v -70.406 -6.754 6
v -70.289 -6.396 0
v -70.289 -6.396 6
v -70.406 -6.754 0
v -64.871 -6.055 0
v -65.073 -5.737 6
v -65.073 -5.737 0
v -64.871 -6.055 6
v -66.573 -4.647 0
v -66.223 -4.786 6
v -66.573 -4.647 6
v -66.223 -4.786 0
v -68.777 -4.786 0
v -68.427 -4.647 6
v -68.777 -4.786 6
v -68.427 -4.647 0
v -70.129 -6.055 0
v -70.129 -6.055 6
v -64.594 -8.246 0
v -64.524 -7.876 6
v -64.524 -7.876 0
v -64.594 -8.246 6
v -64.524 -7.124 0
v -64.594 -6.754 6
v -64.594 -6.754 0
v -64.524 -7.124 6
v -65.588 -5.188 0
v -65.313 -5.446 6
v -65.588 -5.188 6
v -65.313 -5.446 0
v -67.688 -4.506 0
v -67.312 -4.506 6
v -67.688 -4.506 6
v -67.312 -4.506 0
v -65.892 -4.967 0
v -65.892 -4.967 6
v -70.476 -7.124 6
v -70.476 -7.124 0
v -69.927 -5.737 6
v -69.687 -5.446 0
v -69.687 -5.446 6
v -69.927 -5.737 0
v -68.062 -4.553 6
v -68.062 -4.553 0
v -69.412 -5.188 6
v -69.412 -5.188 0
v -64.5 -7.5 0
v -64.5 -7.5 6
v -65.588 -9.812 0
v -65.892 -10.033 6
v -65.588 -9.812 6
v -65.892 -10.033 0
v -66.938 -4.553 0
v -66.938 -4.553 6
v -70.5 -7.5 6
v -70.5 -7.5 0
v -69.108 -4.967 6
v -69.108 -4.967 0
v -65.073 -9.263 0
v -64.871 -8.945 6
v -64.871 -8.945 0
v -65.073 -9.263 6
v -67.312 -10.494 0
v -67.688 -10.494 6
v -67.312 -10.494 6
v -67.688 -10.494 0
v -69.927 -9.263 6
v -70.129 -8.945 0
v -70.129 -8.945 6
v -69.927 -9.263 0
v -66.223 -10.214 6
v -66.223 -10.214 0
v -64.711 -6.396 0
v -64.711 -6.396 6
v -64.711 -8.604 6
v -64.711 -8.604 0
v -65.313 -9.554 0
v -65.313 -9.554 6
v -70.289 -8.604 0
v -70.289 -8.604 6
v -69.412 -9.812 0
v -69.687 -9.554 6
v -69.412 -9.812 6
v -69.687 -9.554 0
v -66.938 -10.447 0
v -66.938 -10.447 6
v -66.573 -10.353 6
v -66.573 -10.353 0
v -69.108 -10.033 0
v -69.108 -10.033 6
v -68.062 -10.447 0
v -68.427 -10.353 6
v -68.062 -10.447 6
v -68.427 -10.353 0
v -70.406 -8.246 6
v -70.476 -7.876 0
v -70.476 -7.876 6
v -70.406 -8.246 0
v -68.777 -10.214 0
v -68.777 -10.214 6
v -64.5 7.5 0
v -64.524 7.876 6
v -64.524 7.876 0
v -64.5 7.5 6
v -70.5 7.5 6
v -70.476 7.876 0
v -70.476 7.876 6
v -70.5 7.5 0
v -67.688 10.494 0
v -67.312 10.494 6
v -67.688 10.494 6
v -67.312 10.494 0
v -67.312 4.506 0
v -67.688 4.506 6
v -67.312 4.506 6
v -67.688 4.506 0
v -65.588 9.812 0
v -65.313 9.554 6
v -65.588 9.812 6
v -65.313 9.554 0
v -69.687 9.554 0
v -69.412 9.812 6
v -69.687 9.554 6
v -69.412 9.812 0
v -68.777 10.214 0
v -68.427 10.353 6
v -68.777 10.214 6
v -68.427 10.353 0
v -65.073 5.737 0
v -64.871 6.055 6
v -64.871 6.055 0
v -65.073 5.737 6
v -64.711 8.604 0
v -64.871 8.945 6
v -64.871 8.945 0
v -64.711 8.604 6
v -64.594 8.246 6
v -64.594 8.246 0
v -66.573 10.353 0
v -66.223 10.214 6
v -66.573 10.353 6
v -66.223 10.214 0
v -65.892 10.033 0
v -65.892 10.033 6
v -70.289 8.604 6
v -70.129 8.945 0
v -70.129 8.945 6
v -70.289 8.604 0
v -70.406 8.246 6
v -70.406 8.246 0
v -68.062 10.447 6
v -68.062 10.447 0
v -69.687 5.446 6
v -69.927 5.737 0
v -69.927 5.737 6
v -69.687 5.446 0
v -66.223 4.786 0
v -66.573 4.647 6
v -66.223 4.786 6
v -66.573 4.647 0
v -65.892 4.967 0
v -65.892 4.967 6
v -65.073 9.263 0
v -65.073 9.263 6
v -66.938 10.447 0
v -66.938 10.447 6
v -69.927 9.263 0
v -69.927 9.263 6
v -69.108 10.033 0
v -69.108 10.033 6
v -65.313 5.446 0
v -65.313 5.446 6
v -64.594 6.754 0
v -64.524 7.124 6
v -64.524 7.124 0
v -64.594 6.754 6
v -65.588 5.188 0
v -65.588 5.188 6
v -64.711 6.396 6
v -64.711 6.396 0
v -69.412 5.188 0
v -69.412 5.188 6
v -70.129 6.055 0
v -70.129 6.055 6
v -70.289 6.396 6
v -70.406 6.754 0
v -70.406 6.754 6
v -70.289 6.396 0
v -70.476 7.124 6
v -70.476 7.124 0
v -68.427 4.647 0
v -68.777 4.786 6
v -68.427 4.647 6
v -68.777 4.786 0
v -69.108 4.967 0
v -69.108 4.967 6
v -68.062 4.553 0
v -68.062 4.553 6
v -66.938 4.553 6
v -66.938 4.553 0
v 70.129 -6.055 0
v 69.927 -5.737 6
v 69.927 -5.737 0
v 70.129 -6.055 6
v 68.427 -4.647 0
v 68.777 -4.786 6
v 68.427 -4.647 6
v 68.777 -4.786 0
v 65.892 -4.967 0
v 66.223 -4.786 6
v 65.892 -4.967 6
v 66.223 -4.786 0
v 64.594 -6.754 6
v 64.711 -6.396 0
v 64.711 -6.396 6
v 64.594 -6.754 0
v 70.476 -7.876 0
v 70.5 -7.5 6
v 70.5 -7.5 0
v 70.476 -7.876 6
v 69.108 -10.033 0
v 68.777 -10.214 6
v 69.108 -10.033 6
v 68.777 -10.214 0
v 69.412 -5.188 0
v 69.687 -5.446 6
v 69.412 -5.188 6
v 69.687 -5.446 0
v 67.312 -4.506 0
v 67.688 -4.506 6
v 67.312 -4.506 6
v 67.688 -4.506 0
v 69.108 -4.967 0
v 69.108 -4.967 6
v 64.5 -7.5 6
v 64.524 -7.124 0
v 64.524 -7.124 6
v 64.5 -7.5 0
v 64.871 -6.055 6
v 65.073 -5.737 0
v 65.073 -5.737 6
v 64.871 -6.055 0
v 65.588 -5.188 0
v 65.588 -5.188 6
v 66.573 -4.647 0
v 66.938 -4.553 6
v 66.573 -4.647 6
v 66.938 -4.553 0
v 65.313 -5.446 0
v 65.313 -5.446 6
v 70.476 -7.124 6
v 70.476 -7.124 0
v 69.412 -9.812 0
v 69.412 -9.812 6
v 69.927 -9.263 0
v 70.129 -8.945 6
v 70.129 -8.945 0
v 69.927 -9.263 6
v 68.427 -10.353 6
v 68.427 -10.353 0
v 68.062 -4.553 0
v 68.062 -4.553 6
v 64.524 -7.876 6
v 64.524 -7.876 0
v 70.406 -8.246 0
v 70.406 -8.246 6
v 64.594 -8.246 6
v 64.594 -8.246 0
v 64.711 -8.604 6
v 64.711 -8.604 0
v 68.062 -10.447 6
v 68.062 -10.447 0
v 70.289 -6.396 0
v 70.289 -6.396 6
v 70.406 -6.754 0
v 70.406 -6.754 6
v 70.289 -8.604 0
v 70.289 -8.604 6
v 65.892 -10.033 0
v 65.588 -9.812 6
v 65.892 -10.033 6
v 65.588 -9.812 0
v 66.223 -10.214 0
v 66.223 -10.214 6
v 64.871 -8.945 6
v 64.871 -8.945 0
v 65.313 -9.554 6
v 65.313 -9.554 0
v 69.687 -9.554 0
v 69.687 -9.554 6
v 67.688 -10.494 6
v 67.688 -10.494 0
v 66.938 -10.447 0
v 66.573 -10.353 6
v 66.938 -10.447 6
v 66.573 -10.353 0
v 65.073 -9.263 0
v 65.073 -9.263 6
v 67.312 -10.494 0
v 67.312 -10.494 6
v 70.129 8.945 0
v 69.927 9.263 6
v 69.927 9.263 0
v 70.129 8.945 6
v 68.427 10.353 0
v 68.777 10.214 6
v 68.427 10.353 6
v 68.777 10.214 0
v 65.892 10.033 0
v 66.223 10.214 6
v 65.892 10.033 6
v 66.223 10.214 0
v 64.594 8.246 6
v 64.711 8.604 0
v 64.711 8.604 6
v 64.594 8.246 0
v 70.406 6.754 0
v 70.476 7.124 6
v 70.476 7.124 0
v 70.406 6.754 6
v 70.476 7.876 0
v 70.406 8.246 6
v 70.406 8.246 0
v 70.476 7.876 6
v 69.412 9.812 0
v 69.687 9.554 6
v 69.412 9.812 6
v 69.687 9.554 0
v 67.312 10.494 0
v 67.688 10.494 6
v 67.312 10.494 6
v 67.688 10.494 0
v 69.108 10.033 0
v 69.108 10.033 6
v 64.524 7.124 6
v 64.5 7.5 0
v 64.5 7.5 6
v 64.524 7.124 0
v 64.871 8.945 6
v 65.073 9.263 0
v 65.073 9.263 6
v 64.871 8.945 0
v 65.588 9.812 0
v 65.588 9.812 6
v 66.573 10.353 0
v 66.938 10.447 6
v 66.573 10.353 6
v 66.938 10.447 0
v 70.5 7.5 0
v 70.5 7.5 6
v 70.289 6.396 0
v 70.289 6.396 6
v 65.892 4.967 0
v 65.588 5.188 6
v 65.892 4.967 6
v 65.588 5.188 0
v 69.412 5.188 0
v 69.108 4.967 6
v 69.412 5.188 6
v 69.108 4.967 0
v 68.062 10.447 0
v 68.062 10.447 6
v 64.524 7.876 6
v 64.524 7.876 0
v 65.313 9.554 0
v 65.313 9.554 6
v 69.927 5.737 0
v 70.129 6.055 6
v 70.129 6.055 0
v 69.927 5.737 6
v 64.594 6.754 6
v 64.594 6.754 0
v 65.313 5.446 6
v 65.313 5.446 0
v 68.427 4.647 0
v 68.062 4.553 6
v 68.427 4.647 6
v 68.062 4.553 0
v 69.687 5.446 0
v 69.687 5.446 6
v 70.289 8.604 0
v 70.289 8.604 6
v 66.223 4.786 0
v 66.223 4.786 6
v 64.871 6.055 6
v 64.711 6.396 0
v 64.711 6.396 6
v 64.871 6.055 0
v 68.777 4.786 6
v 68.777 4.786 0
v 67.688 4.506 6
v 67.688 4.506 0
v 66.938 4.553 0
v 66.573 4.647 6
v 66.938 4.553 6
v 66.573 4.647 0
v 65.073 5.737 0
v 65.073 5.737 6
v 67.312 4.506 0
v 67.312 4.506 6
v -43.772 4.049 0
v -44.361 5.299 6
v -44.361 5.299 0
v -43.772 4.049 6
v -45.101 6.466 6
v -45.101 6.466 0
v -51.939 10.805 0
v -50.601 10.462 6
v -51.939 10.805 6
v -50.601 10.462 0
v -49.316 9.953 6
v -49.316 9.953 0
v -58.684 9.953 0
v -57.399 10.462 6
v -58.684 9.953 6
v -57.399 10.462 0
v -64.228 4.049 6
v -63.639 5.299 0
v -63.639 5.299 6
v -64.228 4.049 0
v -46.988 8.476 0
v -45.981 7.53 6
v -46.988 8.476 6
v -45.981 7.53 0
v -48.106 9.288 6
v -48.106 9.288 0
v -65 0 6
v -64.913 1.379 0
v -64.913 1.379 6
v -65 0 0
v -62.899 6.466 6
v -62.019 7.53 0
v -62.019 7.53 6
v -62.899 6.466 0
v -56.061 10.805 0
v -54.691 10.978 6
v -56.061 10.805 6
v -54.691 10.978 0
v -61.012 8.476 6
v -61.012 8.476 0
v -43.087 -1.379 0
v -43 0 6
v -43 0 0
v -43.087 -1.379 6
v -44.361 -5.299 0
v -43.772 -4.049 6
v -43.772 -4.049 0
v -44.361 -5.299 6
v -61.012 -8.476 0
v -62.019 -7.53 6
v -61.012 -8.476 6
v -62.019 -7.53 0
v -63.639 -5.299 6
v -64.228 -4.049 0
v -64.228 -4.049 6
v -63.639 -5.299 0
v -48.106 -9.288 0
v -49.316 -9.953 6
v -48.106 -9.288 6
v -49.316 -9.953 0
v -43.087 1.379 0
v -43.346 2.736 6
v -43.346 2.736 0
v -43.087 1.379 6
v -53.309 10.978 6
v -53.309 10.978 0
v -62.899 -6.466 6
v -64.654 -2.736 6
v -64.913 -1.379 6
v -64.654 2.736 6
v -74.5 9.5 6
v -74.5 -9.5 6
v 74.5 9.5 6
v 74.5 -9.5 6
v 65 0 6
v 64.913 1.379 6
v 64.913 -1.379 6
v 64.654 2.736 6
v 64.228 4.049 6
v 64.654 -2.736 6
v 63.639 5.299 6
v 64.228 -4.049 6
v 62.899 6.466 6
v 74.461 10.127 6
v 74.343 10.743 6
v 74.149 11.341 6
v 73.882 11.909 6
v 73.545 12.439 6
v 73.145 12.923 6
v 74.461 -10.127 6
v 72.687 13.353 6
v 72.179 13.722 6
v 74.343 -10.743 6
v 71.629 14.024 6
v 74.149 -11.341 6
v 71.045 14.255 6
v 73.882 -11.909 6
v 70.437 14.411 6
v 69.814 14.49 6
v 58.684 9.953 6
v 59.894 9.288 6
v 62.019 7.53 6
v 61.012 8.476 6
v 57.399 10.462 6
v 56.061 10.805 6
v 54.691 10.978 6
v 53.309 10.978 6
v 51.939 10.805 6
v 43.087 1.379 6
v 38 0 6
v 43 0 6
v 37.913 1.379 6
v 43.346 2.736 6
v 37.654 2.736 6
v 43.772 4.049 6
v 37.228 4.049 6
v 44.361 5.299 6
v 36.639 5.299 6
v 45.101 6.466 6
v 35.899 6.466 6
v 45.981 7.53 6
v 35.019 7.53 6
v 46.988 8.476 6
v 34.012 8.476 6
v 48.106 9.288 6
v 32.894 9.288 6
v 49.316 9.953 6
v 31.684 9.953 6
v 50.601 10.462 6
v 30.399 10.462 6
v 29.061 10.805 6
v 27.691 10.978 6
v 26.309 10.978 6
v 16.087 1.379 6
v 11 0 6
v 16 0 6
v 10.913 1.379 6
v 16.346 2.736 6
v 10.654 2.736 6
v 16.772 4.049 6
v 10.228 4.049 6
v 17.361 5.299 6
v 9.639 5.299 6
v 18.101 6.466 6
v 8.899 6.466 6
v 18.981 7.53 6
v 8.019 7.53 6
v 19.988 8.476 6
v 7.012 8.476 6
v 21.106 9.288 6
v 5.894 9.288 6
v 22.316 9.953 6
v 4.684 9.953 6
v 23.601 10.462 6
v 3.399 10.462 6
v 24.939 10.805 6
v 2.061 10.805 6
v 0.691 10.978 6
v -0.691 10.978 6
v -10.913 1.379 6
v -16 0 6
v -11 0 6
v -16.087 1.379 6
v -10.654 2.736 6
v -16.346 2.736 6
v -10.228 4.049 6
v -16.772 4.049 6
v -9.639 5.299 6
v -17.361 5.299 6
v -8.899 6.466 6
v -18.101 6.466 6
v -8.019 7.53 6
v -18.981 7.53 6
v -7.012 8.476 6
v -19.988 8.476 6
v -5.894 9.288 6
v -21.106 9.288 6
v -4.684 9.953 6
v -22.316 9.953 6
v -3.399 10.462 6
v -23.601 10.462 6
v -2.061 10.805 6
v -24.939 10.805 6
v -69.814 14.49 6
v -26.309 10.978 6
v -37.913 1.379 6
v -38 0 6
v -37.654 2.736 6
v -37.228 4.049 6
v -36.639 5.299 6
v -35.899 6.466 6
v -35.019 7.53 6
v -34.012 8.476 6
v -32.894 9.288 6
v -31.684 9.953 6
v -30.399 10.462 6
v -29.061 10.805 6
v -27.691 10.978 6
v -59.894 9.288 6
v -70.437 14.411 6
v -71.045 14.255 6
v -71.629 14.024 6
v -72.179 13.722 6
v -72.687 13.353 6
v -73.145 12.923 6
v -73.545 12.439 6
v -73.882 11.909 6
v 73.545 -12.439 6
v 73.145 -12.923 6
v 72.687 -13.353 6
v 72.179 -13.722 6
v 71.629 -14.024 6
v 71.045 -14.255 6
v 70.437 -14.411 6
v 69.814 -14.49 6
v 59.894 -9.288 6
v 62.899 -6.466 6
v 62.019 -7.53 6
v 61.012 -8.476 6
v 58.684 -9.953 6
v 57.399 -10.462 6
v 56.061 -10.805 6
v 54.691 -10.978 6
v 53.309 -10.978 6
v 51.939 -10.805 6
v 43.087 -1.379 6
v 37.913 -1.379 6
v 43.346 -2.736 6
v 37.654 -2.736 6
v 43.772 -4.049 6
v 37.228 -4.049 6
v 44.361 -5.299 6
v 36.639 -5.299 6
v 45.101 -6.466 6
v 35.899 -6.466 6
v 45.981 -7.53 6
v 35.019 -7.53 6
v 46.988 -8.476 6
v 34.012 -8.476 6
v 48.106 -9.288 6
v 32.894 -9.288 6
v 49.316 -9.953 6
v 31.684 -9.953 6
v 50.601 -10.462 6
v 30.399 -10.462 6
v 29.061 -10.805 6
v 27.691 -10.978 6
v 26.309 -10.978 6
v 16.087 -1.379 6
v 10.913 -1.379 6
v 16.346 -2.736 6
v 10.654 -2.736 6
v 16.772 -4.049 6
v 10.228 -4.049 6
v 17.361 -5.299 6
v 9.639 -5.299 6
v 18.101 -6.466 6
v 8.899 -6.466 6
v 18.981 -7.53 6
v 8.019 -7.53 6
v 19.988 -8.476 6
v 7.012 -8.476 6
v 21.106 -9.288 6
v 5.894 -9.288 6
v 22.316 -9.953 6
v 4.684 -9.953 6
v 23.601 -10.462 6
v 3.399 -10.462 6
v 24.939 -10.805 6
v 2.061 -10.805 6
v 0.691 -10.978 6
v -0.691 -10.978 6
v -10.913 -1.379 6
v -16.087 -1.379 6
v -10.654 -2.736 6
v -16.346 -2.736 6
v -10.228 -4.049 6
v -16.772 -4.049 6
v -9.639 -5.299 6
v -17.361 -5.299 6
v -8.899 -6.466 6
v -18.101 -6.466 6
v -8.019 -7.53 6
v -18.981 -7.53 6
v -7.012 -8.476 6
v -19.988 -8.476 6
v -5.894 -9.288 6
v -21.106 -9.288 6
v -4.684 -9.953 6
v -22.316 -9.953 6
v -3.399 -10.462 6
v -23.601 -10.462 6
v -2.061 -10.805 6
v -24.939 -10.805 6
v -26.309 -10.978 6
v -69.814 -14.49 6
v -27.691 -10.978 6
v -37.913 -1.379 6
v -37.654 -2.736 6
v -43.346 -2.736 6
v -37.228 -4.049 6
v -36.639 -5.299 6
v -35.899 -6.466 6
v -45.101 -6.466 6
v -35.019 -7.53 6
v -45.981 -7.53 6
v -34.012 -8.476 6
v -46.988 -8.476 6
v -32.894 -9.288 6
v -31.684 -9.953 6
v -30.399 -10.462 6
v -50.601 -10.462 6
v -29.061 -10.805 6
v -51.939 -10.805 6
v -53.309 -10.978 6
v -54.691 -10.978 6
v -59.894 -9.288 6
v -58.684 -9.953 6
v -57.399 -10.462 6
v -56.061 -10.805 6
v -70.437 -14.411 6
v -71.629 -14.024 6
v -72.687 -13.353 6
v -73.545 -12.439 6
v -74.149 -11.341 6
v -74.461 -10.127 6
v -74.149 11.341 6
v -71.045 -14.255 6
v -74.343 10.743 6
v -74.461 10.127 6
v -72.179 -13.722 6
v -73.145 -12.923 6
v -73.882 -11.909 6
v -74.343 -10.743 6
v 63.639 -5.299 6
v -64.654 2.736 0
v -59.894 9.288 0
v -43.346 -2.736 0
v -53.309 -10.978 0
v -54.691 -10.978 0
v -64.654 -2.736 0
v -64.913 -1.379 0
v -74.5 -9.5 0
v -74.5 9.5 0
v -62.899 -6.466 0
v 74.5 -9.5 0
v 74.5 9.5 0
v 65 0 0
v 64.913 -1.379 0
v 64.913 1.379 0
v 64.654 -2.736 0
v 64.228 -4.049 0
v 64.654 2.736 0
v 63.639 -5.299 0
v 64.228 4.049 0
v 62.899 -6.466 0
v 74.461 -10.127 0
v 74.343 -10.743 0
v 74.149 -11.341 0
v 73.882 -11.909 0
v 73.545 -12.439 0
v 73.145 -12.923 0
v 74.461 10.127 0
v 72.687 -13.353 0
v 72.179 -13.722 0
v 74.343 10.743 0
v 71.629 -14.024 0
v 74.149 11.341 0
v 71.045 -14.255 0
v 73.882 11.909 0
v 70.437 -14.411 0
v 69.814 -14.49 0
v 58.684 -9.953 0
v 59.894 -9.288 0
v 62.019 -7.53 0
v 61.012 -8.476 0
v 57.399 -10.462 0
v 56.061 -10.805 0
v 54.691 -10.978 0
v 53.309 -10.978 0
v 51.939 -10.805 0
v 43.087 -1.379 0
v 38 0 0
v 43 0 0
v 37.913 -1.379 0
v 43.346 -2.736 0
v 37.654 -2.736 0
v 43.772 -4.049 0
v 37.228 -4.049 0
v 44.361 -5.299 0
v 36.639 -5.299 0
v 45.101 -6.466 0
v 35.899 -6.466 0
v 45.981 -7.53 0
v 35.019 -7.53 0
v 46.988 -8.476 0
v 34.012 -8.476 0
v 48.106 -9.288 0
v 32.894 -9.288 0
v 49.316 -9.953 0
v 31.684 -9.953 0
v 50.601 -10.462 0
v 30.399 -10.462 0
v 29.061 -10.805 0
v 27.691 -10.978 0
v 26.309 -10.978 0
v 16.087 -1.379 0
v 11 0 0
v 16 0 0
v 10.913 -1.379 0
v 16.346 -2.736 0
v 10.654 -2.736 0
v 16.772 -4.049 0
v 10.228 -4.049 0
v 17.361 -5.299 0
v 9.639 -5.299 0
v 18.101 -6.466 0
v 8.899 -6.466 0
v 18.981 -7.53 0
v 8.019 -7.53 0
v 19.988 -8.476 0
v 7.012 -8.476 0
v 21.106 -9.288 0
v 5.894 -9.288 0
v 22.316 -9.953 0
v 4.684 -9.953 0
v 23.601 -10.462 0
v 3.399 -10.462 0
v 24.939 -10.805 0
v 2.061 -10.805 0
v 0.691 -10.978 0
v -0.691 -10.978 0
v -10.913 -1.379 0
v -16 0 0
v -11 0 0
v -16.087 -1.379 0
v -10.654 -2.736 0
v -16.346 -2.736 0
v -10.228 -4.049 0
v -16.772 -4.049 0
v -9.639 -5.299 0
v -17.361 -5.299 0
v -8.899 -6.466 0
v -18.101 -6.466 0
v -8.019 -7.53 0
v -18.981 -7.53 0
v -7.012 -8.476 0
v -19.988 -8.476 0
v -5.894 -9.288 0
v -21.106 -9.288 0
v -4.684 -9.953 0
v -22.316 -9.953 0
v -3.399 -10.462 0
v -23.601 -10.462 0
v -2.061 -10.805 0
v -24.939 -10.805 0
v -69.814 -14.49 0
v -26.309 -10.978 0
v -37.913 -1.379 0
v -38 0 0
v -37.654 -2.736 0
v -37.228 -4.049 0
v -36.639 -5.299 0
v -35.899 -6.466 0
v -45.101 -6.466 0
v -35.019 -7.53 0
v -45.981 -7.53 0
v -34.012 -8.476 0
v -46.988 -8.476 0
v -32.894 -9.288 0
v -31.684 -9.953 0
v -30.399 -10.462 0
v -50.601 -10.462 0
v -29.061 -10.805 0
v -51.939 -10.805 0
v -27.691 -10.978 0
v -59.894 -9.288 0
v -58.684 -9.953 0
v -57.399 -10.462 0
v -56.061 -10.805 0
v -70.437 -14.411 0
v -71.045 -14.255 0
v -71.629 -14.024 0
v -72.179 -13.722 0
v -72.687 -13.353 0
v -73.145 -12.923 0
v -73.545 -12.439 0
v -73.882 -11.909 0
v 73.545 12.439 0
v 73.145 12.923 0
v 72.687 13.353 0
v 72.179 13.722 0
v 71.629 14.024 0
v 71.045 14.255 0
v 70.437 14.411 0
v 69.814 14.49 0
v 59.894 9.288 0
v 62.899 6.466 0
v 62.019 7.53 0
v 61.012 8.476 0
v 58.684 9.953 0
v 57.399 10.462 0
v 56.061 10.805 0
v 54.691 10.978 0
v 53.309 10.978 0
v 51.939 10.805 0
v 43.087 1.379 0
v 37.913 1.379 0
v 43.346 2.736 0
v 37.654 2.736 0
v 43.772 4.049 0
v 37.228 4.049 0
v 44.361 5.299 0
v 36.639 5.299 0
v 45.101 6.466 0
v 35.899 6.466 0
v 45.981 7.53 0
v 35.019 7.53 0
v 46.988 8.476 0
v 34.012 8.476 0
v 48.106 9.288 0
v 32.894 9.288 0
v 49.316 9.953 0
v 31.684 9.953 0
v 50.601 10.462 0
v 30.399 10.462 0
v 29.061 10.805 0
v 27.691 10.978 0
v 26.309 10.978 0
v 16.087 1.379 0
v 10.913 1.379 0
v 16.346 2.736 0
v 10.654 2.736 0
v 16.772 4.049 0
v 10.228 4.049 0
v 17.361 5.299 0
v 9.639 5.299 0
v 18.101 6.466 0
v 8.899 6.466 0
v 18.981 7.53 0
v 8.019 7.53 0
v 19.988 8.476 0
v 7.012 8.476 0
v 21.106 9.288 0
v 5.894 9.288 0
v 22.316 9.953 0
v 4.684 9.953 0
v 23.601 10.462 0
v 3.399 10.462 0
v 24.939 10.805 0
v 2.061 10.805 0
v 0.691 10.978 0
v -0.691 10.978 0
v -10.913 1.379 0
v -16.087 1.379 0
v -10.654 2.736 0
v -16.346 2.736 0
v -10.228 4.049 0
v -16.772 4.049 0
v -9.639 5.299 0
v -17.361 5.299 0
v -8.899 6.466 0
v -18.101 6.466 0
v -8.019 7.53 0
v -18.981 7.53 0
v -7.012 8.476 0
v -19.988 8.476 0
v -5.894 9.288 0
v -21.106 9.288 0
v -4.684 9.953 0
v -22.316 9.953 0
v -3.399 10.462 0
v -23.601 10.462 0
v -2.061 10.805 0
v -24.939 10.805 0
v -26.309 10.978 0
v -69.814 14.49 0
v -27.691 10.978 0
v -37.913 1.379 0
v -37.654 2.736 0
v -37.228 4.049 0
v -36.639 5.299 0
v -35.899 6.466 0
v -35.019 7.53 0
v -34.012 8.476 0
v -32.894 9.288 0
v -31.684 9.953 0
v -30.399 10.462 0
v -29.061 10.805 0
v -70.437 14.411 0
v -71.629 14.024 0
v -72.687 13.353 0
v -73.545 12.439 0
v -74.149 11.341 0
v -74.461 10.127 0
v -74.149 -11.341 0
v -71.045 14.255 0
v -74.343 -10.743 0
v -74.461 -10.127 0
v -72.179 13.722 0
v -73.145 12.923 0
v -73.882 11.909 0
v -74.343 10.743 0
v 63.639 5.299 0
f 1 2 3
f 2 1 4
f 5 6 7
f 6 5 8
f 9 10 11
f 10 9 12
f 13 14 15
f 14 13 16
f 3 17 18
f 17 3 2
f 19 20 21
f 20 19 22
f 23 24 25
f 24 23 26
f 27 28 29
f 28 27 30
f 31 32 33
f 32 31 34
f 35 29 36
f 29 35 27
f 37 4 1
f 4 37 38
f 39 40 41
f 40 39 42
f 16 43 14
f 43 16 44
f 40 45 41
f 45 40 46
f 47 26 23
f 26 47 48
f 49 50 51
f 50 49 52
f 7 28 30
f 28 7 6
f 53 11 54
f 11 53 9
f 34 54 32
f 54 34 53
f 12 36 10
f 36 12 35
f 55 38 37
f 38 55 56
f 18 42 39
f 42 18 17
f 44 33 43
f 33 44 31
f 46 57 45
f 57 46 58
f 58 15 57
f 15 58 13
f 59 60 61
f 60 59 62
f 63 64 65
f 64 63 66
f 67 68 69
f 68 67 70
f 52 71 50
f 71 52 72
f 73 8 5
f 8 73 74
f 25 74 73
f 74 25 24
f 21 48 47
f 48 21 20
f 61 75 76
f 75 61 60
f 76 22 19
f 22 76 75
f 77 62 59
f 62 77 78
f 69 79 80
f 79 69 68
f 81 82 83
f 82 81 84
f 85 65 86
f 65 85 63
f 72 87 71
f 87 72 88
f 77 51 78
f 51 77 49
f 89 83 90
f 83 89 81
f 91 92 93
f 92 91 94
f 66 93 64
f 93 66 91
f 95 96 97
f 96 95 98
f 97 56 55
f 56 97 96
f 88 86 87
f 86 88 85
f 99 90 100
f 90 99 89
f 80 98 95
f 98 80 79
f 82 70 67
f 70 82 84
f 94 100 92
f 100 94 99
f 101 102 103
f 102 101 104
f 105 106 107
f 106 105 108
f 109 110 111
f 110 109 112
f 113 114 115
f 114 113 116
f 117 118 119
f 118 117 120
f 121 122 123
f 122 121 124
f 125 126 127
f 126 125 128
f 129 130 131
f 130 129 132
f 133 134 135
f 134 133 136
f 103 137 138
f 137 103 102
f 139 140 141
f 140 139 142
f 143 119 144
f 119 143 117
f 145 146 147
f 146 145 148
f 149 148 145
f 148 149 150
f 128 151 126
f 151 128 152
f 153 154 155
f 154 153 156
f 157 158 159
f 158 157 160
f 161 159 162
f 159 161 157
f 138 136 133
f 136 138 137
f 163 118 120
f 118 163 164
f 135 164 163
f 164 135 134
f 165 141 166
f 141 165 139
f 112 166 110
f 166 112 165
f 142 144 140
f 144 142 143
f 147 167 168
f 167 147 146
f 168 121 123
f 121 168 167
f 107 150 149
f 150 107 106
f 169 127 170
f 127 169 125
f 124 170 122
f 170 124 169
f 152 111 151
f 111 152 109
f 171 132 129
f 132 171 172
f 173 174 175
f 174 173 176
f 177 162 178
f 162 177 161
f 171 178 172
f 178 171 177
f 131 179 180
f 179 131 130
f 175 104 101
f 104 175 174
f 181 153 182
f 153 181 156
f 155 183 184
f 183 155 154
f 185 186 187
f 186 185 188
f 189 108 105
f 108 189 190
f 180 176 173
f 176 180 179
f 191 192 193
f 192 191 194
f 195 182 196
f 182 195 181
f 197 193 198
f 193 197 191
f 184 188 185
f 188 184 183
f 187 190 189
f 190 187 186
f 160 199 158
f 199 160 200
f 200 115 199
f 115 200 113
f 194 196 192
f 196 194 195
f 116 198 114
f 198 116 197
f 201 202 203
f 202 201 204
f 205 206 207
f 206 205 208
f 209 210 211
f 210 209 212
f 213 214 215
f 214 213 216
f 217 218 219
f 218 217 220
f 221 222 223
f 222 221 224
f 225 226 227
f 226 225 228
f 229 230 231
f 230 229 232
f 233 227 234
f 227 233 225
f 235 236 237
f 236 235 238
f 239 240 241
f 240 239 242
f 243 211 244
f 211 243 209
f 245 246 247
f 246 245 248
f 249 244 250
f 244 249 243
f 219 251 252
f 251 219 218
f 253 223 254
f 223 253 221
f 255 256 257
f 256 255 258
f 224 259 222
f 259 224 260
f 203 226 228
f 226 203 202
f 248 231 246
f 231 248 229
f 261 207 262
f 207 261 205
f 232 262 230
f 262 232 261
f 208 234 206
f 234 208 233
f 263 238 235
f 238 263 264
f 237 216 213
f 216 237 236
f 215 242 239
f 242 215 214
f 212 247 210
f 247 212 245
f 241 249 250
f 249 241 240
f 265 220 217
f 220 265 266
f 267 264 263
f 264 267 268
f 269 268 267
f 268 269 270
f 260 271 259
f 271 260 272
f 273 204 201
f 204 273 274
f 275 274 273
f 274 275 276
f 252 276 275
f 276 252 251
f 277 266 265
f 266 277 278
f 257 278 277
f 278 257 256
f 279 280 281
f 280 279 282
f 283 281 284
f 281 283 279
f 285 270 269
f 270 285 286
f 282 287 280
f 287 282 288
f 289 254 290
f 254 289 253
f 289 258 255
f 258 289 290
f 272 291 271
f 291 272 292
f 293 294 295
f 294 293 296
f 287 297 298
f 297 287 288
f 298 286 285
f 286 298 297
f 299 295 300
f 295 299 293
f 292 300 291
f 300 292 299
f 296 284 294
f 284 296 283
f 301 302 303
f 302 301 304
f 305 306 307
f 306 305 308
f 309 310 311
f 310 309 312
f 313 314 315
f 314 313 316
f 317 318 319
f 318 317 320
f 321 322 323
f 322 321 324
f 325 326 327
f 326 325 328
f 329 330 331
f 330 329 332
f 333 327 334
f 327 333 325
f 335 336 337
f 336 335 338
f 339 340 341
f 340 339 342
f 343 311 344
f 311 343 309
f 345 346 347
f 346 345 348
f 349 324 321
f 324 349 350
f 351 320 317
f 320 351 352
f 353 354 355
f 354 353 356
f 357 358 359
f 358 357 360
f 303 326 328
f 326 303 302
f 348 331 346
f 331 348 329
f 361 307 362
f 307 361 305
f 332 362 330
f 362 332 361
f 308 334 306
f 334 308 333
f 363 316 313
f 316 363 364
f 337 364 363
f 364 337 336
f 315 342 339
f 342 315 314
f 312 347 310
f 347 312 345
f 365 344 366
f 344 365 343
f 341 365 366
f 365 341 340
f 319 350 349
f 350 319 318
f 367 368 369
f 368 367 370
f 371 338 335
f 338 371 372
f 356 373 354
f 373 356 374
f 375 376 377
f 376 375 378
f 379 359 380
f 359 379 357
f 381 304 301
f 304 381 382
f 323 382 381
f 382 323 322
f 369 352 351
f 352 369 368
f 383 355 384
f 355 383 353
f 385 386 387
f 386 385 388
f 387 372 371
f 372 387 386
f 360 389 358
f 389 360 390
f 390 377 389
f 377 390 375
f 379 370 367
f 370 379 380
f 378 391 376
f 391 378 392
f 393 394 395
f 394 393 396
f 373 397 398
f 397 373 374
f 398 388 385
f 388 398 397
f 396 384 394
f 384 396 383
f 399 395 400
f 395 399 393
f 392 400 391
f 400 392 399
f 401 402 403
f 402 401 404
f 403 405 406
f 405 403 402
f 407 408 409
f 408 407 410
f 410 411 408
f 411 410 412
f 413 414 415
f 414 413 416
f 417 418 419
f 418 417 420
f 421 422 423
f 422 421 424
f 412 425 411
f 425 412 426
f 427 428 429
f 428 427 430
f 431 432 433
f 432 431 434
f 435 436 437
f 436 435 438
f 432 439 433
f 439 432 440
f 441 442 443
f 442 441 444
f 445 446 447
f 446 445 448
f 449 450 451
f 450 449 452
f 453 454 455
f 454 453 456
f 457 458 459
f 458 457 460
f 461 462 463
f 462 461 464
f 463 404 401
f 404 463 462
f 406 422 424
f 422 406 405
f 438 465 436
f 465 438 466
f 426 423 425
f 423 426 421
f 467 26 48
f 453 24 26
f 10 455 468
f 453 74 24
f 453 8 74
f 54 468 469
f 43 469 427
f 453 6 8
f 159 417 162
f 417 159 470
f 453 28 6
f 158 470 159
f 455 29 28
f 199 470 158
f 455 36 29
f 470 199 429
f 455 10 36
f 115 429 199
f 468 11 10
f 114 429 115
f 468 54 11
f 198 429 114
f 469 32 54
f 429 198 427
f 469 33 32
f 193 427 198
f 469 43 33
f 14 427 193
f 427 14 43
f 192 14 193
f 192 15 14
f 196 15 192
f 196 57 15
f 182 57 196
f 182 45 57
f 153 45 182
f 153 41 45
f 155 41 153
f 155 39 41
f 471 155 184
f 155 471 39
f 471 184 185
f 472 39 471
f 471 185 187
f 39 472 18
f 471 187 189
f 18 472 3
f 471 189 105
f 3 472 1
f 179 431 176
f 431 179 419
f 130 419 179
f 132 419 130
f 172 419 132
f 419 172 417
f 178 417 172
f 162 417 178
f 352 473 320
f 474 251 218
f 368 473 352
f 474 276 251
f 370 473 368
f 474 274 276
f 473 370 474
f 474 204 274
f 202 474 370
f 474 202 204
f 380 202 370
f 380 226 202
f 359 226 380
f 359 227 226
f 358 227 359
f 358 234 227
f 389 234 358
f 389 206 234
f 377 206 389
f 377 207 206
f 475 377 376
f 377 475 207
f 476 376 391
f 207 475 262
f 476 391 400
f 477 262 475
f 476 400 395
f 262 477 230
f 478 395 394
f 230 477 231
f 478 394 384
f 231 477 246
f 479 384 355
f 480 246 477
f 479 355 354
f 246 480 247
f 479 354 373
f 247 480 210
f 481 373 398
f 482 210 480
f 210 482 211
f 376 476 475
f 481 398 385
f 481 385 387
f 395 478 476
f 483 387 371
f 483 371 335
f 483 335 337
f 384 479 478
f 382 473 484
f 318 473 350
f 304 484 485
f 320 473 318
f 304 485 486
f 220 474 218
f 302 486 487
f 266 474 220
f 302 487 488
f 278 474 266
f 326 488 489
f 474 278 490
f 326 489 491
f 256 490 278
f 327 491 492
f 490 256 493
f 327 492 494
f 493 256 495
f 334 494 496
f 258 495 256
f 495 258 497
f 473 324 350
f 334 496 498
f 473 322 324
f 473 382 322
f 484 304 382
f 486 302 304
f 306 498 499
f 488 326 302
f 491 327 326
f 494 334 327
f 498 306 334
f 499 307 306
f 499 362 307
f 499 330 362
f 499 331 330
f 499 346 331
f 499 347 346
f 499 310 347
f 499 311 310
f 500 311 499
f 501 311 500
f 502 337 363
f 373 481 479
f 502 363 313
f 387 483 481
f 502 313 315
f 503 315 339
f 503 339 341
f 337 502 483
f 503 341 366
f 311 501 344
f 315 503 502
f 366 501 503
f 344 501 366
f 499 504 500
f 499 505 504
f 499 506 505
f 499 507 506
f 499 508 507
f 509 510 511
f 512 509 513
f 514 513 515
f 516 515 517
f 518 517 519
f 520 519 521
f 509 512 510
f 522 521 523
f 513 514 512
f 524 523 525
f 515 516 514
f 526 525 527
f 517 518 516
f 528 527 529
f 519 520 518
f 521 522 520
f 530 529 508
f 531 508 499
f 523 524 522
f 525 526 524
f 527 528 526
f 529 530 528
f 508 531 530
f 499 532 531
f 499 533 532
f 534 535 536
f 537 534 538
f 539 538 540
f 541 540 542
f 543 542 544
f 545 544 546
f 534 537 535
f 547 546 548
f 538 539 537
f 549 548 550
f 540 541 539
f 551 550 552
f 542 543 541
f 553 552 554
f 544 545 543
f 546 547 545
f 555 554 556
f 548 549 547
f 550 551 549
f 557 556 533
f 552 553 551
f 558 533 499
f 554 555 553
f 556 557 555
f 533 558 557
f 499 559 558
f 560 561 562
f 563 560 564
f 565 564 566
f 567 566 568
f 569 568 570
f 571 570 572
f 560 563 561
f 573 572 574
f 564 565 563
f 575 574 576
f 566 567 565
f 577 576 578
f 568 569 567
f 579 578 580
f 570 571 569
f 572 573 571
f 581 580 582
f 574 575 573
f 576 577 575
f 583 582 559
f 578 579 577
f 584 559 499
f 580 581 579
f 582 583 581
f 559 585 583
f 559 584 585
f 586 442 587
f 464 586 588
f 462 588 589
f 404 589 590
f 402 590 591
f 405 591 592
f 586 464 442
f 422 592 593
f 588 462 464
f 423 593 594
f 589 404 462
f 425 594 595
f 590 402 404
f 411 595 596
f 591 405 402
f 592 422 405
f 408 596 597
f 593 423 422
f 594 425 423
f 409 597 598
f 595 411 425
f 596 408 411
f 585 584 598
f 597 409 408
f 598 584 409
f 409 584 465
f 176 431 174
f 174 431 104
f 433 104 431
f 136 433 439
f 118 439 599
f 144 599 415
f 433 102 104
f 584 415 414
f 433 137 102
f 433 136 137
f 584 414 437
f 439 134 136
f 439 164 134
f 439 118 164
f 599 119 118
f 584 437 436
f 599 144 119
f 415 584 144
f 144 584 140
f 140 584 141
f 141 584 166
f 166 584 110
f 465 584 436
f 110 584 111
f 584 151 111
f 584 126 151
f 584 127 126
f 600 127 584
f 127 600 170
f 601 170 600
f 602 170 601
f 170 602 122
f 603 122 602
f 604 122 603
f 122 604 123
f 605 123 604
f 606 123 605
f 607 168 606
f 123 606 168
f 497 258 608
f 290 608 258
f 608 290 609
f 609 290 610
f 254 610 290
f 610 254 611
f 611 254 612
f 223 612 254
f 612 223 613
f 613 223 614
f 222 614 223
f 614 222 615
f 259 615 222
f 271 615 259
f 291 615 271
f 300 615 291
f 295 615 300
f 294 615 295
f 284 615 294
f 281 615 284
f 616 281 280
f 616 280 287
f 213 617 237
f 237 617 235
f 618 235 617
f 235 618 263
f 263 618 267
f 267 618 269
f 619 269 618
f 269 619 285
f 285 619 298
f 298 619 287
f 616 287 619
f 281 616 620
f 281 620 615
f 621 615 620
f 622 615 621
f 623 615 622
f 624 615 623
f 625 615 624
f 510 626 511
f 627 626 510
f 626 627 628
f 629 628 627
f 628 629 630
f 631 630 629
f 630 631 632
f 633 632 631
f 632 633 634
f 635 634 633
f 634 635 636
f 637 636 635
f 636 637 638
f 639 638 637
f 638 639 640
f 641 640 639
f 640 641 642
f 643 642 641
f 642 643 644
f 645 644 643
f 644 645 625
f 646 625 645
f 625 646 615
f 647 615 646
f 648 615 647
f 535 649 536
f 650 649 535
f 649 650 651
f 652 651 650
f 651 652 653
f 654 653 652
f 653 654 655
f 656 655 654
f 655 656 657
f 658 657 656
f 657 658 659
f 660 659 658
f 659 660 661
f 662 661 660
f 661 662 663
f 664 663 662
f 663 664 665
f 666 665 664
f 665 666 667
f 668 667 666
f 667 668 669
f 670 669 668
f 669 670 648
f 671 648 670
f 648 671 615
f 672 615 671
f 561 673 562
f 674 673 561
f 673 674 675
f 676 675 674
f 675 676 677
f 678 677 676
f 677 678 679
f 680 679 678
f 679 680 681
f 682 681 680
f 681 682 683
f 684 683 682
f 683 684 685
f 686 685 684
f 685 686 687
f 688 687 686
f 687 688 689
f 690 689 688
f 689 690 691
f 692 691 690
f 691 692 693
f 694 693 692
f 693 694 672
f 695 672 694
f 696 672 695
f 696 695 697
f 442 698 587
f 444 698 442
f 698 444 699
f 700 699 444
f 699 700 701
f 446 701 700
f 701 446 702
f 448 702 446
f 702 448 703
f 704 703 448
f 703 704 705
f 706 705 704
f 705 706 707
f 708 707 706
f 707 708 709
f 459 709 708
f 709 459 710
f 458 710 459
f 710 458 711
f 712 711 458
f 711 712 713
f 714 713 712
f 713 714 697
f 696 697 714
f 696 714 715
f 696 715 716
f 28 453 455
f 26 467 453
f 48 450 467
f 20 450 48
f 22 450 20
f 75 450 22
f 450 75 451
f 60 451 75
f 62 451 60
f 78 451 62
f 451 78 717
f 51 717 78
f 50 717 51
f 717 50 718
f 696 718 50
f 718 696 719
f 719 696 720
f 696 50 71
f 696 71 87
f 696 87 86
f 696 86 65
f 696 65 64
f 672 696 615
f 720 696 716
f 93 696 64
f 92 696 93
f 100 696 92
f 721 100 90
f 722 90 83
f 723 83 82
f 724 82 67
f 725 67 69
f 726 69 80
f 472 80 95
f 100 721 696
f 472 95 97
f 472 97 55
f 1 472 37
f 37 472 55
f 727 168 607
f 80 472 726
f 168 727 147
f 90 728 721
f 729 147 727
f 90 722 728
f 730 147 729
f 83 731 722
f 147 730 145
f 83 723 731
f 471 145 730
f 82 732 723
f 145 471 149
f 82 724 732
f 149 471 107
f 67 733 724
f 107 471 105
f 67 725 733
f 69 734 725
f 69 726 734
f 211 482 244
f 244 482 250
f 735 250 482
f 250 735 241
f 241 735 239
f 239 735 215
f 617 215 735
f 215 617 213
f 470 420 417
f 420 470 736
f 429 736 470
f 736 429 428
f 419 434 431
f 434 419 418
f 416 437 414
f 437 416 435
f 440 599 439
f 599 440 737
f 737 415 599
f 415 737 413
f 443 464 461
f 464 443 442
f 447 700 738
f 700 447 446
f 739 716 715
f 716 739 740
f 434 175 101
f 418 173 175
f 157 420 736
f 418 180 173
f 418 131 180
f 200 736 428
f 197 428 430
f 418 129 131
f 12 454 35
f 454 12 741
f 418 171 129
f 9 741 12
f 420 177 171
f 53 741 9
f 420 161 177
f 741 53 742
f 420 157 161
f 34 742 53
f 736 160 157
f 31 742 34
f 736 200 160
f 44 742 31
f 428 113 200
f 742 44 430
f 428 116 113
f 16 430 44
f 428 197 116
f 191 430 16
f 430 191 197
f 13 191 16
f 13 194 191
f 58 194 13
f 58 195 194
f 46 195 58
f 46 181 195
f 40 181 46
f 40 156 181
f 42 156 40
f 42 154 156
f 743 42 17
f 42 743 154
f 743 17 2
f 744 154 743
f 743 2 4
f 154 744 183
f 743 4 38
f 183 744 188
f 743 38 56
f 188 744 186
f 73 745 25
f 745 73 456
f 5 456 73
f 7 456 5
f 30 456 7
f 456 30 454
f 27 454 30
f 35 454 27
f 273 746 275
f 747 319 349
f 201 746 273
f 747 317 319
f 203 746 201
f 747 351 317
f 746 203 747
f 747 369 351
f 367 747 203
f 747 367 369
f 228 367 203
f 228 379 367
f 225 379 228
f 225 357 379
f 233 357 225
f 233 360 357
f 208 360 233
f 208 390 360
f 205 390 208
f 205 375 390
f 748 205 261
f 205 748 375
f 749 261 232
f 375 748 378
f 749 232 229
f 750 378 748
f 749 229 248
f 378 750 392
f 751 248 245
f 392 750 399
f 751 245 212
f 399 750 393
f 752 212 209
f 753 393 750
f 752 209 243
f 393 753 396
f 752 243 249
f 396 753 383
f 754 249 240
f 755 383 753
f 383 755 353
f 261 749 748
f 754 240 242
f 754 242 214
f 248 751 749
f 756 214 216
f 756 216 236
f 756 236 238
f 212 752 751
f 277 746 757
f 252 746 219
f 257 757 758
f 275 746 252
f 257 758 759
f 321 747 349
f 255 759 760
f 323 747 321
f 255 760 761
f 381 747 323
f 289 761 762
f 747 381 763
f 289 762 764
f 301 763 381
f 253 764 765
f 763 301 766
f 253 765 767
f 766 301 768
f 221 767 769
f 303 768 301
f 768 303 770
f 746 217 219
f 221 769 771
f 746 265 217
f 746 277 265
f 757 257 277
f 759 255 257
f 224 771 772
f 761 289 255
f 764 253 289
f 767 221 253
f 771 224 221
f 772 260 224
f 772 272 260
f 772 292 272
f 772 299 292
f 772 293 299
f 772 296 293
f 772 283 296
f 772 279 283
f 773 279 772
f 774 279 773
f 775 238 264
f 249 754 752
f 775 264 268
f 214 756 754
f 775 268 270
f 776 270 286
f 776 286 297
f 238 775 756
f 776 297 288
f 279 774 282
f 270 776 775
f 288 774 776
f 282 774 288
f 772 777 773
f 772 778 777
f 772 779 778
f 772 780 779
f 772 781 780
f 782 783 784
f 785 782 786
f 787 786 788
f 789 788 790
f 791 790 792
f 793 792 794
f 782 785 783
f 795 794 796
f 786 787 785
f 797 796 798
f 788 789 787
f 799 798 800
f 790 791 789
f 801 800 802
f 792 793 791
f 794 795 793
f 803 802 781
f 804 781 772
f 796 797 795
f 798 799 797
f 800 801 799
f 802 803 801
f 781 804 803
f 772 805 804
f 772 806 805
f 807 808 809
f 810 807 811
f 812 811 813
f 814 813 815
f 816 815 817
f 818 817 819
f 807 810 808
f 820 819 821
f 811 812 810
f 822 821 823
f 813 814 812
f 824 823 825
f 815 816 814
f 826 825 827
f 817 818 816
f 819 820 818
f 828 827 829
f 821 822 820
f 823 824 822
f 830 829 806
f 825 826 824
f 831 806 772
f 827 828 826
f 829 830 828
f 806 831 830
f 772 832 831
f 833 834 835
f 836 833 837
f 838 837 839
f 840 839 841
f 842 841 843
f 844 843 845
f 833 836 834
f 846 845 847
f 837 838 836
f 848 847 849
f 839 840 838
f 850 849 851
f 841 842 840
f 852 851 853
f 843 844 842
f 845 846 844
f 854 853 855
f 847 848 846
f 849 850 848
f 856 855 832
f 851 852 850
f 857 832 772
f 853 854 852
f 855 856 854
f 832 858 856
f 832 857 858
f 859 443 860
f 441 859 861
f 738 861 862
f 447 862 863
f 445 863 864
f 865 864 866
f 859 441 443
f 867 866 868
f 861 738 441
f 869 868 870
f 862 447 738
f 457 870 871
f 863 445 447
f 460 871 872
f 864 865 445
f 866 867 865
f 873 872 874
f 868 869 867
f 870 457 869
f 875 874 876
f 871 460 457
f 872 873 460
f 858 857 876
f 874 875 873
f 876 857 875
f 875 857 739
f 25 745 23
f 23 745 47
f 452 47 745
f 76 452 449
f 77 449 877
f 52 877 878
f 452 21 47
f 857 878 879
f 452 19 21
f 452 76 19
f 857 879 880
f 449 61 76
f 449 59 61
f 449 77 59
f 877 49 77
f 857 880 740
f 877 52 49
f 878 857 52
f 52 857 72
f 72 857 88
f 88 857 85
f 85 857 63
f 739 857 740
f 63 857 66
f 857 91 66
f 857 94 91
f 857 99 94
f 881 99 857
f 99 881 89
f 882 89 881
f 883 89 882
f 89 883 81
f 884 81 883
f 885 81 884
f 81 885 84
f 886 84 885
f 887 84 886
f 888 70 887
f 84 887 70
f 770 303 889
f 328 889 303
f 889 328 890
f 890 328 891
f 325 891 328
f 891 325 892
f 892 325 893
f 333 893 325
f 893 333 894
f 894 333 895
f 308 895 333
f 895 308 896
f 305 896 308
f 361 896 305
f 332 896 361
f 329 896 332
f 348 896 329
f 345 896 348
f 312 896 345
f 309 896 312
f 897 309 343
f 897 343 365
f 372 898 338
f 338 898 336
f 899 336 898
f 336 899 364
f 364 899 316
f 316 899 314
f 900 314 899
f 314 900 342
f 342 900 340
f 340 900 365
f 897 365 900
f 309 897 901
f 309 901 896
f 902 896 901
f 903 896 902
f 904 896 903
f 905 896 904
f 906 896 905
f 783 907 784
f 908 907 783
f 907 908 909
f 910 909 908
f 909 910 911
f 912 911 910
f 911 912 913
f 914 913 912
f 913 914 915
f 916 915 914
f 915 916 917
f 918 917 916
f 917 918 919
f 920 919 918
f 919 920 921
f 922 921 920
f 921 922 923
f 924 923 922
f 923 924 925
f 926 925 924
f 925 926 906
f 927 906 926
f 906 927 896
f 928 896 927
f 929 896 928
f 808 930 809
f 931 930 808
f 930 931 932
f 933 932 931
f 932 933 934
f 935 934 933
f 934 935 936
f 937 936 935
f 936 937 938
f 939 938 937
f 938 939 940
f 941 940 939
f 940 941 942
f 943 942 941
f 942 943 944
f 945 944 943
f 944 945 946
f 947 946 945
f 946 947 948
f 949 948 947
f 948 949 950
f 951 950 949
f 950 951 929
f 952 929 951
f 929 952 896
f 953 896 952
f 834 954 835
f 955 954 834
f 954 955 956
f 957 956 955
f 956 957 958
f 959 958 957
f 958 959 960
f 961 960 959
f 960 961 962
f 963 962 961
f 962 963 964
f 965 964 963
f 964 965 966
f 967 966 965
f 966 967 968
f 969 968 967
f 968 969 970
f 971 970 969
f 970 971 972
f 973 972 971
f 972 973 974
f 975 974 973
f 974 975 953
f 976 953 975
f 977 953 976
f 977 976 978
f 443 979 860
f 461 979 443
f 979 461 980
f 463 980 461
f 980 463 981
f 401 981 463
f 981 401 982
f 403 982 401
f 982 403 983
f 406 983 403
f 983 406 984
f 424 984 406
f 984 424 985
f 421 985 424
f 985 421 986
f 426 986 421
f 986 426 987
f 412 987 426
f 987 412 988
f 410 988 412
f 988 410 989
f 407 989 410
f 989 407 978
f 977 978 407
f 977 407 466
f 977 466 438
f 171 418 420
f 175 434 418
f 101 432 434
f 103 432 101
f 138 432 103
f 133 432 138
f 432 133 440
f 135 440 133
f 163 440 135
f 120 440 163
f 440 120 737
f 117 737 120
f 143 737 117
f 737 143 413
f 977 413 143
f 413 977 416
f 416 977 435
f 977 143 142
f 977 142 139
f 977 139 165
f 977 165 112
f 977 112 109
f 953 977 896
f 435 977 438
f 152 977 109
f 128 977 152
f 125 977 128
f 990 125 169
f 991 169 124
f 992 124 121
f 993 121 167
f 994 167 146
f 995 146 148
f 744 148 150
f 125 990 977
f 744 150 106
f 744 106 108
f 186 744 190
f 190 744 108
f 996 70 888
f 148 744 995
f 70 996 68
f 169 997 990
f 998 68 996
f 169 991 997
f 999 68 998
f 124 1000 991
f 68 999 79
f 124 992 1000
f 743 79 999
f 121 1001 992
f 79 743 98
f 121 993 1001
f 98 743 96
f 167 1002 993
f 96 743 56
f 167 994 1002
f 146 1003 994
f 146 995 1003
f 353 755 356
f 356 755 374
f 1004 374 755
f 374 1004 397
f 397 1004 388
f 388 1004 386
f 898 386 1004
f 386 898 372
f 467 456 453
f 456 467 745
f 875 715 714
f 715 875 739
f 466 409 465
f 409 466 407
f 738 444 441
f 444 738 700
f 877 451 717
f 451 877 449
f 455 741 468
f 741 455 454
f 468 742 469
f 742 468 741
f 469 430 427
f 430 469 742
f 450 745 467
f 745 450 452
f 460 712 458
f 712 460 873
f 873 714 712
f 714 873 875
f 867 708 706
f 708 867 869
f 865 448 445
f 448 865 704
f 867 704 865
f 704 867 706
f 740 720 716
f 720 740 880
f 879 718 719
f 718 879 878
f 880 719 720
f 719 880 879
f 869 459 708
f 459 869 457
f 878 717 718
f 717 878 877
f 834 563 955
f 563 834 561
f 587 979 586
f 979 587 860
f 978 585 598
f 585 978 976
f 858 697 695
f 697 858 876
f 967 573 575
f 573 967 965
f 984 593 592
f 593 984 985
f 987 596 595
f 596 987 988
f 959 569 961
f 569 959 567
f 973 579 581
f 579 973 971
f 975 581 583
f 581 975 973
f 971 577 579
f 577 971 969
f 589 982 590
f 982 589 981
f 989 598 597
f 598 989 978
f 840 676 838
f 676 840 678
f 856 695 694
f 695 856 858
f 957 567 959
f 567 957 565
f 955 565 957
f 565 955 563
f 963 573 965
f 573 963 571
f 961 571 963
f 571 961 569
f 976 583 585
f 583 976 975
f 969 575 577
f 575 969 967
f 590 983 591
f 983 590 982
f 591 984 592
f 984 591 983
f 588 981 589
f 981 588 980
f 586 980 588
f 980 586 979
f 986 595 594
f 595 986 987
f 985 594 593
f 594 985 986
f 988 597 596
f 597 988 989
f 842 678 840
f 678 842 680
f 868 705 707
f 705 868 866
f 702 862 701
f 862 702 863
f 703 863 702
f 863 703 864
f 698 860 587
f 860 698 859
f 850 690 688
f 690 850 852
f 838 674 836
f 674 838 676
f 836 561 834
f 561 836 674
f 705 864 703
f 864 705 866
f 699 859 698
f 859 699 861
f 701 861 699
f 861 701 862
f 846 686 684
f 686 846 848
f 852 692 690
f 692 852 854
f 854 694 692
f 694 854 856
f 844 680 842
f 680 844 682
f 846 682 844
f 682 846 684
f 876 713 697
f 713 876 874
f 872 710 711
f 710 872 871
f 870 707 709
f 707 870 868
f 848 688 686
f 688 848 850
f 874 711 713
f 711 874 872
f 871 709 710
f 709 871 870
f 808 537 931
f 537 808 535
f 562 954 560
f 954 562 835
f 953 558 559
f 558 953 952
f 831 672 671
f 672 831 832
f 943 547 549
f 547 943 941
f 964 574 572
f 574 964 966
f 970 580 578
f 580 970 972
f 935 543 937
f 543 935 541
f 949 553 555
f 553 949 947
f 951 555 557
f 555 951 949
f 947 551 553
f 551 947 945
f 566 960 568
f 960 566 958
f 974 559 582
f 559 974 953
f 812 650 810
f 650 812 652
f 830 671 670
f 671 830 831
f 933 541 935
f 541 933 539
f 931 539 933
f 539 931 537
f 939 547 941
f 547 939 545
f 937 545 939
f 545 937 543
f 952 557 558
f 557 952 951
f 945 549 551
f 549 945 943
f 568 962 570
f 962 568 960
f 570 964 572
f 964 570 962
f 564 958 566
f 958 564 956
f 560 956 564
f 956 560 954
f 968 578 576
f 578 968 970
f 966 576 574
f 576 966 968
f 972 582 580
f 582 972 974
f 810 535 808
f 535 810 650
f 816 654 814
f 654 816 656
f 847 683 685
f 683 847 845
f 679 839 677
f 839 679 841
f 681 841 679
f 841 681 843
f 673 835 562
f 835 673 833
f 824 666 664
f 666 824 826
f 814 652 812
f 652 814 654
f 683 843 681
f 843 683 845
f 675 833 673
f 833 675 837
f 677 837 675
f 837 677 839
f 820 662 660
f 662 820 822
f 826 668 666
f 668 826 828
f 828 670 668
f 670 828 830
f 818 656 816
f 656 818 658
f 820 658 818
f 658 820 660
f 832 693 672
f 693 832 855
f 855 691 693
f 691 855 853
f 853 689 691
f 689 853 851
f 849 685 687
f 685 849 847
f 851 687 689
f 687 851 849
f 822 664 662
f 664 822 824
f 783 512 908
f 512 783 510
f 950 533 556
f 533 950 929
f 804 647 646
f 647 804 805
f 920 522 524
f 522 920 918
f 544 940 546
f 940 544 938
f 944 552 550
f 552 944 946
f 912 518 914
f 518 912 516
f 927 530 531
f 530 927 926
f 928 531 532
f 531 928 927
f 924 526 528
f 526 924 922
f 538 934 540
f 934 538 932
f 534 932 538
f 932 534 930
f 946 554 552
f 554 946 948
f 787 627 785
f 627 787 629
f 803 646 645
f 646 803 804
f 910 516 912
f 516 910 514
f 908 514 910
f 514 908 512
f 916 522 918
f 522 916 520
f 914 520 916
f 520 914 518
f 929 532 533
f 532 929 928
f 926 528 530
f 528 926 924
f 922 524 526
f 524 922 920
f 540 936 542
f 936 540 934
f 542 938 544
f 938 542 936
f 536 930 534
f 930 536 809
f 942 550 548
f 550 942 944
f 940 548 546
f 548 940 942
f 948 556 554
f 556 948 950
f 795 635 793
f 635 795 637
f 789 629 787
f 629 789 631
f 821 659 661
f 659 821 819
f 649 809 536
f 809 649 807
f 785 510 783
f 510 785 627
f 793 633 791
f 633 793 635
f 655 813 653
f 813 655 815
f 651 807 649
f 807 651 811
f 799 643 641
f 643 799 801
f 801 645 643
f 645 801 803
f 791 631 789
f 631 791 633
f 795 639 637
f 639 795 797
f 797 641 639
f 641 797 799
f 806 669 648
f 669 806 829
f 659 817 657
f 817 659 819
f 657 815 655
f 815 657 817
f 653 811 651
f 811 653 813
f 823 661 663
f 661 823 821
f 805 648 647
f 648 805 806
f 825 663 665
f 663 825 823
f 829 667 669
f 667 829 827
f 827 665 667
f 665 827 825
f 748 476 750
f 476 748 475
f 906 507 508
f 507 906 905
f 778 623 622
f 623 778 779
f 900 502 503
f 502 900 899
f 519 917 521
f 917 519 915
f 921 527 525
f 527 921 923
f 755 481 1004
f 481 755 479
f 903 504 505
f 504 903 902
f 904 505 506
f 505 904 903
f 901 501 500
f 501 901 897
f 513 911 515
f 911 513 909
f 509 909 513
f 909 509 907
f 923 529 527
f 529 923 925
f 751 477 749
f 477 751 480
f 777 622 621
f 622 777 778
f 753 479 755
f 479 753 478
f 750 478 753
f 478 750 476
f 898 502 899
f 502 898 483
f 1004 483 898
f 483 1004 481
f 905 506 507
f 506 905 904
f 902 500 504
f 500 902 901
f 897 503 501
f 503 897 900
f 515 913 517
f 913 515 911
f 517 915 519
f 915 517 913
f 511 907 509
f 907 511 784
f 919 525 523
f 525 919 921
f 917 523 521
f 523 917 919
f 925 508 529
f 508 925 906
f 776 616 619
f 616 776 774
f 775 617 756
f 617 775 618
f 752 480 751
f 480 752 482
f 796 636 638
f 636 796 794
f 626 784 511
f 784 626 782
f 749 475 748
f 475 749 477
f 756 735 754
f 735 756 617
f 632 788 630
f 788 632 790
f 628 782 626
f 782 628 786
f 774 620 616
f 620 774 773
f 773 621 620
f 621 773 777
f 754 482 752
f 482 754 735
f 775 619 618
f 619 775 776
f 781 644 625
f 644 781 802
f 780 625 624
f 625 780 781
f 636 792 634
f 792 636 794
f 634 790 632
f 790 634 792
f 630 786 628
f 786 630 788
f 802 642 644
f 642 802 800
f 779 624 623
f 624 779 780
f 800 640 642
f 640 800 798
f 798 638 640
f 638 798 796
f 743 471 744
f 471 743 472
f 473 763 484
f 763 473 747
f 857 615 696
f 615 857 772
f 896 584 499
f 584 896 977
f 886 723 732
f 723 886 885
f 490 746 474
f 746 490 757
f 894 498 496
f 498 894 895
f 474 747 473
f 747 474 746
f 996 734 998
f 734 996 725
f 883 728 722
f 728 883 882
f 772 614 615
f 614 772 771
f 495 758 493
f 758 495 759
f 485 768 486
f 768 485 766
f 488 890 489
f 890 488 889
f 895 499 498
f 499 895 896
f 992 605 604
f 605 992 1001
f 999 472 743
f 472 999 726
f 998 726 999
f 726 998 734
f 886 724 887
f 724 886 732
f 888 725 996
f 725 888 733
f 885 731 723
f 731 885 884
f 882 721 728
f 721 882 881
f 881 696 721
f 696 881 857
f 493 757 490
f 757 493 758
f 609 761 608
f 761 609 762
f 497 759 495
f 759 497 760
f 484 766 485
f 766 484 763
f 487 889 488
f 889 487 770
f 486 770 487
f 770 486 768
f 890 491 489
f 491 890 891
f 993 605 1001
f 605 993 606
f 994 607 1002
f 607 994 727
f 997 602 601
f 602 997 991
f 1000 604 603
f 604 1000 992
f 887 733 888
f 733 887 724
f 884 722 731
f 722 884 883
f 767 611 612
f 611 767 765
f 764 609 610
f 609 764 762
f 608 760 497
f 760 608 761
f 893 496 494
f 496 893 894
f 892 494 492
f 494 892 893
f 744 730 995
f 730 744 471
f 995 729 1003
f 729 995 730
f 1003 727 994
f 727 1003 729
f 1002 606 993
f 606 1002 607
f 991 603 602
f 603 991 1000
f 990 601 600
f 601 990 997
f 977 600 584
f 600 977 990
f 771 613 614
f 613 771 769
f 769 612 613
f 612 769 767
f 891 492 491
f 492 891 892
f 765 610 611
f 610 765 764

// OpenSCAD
$fn = 50;


difference() {
	union() {
		hull() {
			translate(v = [-69.5000000000, 9.5000000000, 0]) {
				cylinder(h = 6, r = 5);
			}
			translate(v = [69.5000000000, 9.5000000000, 0]) {
				cylinder(h = 6, r = 5);
			}
			translate(v = [-69.5000000000, -9.5000000000, 0]) {
				cylinder(h = 6, r = 5);
			}
			translate(v = [69.5000000000, -9.5000000000, 0]) {
				cylinder(h = 6, r = 5);
			}
		}
	}
	union() {
		#translate(v = [-67.5000000000, -7.5000000000, -100.0000000000]) {
			cylinder(h = 200, r = 3.0000000000);
		}
		#translate(v = [-67.5000000000, 7.5000000000, -100.0000000000]) {
			cylinder(h = 200, r = 3.0000000000);
		}
		#translate(v = [67.5000000000, -7.5000000000, -100.0000000000]) {
			cylinder(h = 200, r = 3.0000000000);
		}
		#translate(v = [67.5000000000, 7.5000000000, -100.0000000000]) {
			cylinder(h = 200, r = 3.0000000000);
		}
		#translate(v = [-54.0000000000, 0, 0]) {
			cylinder(h = 6, r = 11.0000000000);
		}
		#translate(v = [-27.0000000000, 0, 0]) {
			cylinder(h = 6, r = 11.0000000000);
		}
		#cylinder(h = 6, r = 11.0000000000);
		#translate(v = [27.0000000000, 0, 0]) {
			cylinder(h = 6, r = 11.0000000000);
		}
		#translate(v = [54.0000000000, 0, 0]) {
			cylinder(h = 6, r = 11.0000000000);
		}
	}
}
